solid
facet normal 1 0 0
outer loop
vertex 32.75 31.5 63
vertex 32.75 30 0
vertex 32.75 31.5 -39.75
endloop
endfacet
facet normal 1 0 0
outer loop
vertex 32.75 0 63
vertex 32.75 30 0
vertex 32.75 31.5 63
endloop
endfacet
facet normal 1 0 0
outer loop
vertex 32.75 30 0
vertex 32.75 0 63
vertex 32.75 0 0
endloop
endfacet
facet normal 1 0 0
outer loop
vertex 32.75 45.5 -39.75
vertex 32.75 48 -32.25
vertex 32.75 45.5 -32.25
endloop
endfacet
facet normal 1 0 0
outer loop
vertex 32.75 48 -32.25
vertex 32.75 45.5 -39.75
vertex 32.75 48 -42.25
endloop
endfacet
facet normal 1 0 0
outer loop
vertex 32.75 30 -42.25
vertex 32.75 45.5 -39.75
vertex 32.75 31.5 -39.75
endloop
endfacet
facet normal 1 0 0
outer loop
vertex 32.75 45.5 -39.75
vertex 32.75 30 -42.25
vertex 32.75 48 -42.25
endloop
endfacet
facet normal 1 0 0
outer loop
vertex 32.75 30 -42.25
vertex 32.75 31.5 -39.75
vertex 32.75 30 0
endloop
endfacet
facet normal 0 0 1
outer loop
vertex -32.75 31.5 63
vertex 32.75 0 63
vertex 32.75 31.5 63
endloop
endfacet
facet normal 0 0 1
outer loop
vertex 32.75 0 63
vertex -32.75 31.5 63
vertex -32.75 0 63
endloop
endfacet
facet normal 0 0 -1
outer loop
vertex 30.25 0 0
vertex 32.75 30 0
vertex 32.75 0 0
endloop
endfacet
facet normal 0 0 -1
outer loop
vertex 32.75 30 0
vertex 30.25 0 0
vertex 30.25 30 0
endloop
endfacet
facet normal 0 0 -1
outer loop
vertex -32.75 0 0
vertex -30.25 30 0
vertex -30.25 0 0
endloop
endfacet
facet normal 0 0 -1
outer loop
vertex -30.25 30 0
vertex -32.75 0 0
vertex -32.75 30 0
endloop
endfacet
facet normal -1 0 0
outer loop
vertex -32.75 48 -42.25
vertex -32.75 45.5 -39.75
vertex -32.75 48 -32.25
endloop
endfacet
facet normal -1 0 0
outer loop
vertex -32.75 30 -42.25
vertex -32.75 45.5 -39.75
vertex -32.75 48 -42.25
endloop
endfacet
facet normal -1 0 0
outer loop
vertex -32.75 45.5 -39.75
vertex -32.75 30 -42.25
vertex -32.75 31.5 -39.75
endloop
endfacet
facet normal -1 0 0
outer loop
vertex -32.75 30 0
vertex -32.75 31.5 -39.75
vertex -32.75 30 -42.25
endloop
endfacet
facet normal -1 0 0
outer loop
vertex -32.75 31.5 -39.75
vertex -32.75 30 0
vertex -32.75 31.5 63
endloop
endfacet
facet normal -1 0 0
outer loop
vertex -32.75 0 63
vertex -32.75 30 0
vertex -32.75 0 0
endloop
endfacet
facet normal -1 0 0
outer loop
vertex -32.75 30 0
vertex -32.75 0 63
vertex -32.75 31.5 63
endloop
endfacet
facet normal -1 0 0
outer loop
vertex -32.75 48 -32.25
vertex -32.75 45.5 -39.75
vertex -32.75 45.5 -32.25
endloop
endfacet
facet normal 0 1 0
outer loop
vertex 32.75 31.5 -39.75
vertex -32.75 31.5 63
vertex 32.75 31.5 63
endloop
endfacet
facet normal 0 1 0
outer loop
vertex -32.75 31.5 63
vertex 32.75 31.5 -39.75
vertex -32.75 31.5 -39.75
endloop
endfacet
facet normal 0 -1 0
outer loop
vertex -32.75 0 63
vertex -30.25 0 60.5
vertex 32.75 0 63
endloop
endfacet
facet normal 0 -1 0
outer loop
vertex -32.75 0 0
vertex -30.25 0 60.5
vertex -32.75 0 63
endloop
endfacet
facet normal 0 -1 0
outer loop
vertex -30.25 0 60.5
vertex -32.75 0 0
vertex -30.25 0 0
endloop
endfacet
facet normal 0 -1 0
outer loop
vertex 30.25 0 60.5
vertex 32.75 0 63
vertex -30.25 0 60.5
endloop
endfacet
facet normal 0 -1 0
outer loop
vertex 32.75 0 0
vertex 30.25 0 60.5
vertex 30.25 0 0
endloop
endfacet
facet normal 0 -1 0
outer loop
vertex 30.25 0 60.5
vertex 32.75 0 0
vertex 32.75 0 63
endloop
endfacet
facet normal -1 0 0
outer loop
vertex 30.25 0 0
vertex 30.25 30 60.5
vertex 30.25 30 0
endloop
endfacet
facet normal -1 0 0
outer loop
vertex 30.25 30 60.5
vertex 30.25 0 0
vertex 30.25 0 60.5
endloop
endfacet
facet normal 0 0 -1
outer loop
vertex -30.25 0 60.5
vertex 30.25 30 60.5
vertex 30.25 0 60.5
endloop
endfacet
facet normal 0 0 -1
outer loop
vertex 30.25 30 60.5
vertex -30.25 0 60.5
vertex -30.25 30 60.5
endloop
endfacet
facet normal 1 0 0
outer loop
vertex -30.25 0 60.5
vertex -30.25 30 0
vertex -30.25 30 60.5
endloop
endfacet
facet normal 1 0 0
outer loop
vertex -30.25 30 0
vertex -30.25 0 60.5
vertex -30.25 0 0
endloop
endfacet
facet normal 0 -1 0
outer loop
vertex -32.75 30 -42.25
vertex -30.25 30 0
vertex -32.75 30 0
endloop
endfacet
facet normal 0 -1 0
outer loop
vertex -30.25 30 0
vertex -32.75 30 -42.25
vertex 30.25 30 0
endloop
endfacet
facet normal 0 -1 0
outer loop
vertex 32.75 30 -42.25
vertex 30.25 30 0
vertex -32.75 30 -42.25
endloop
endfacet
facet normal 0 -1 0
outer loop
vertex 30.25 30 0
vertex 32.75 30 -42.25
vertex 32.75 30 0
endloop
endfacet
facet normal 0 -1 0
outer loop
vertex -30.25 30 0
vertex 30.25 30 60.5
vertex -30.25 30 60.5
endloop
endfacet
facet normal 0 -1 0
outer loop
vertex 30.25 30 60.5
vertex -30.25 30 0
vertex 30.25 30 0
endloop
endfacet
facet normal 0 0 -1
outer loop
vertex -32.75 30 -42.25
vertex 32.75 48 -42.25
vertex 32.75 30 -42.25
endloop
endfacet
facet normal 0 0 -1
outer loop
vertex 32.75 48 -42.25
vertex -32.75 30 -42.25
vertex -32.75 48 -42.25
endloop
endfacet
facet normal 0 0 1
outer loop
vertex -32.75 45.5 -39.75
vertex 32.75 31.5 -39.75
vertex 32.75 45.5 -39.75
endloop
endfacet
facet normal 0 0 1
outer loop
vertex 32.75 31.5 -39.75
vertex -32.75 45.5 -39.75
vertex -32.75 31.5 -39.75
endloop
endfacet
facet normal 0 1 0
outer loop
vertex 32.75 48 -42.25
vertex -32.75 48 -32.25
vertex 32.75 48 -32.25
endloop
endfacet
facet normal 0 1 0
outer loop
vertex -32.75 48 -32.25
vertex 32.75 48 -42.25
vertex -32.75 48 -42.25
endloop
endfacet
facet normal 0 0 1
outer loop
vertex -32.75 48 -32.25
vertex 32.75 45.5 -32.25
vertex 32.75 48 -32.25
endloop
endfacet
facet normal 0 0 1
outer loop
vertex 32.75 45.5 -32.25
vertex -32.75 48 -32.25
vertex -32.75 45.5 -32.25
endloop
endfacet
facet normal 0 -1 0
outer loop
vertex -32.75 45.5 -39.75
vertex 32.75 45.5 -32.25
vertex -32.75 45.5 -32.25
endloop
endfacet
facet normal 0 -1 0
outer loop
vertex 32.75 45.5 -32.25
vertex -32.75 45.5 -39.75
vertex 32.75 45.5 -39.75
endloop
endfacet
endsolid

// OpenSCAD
// MagSafe to Generic Slate Phone Adapter - NARROW SPINE VERSION
// All dimensions are in millimeters (mm)

/* [Charger Dimensions] */
// Width of the square charger (added 0.5mm for slip-fit tolerance)
charger_w = 60.5;  
// Height of the square charger block
charger_h = 60.5;  
// Depth the charger sticks out from the wall
charger_d = 30;  

/* [Phone Dimensions] */
// Width variable is no longer used for adapter width, kept for coil calculation
phone_w = 80;      
// Maximum thickness of the phone/case combo
phone_thickness = 14; 
// Distance from the bottom of the phone to the center of the wireless charging coil

coil_height = 72.5; 

/* [Print Settings] */
// Wall thickness for structural components
wall = 2.5;        
// Thickness of the plate between phone and charger (Keep at 1.5mm)
backplate_thickness = 1.5; 
// Height of the front lip holding the phone from slipping off
lip_height = 10;   

/* [Calculated Values] */
drop_distance = coil_height - (charger_h / 2);
// Defines the consistent narrow outer width of the *entire* assembly
outer_w = charger_w + 2*wall; 
// Full external height of the sleeve box
sleeve_h = charger_h + wall; 

module narrow_phone_adapter() {
    union() {
        // 1. The Hook / Sleeve (Slides over the charger)
        difference() {
            // Outer shell (Width restricted to `outer_w`)
            translate([-outer_w/2, 0, 0])
                cube([outer_w, charger_d + backplate_thickness, sleeve_h]);

            // Inner void
            translate([-charger_w/2, -0.1, -0.1])
                cube([charger_w, charger_d + 0.1, charger_h + 0.1]);
        }

        // 2. The Narrow Backplate / Spine
        // Connects the sleeve down to the shelf, width restricted to `outer_w`
        translate([-outer_w/2, charger_d, -drop_distance])
            cube([outer_w, backplate_thickness, drop_distance + sleeve_h]);

        // 3. The Narrow Bottom Hook / Shelf (No side walls)
        // Width restricted to `outer_w`
        translate([-outer_w/2, charger_d, -drop_distance])
            cube([outer_w, backplate_thickness + phone_thickness + wall, wall]);

        // 4. The Narrow Front Lip
        // Width restricted to `outer_w`
        translate([-outer_w/2, charger_d + backplate_thickness + phone_thickness, -drop_distance])
            cube([outer_w, wall, lip_height]);

        // (Original side gussets from image_0.png are removed)
    }
}

// Render the adapter
narrow_phone_adapter();
